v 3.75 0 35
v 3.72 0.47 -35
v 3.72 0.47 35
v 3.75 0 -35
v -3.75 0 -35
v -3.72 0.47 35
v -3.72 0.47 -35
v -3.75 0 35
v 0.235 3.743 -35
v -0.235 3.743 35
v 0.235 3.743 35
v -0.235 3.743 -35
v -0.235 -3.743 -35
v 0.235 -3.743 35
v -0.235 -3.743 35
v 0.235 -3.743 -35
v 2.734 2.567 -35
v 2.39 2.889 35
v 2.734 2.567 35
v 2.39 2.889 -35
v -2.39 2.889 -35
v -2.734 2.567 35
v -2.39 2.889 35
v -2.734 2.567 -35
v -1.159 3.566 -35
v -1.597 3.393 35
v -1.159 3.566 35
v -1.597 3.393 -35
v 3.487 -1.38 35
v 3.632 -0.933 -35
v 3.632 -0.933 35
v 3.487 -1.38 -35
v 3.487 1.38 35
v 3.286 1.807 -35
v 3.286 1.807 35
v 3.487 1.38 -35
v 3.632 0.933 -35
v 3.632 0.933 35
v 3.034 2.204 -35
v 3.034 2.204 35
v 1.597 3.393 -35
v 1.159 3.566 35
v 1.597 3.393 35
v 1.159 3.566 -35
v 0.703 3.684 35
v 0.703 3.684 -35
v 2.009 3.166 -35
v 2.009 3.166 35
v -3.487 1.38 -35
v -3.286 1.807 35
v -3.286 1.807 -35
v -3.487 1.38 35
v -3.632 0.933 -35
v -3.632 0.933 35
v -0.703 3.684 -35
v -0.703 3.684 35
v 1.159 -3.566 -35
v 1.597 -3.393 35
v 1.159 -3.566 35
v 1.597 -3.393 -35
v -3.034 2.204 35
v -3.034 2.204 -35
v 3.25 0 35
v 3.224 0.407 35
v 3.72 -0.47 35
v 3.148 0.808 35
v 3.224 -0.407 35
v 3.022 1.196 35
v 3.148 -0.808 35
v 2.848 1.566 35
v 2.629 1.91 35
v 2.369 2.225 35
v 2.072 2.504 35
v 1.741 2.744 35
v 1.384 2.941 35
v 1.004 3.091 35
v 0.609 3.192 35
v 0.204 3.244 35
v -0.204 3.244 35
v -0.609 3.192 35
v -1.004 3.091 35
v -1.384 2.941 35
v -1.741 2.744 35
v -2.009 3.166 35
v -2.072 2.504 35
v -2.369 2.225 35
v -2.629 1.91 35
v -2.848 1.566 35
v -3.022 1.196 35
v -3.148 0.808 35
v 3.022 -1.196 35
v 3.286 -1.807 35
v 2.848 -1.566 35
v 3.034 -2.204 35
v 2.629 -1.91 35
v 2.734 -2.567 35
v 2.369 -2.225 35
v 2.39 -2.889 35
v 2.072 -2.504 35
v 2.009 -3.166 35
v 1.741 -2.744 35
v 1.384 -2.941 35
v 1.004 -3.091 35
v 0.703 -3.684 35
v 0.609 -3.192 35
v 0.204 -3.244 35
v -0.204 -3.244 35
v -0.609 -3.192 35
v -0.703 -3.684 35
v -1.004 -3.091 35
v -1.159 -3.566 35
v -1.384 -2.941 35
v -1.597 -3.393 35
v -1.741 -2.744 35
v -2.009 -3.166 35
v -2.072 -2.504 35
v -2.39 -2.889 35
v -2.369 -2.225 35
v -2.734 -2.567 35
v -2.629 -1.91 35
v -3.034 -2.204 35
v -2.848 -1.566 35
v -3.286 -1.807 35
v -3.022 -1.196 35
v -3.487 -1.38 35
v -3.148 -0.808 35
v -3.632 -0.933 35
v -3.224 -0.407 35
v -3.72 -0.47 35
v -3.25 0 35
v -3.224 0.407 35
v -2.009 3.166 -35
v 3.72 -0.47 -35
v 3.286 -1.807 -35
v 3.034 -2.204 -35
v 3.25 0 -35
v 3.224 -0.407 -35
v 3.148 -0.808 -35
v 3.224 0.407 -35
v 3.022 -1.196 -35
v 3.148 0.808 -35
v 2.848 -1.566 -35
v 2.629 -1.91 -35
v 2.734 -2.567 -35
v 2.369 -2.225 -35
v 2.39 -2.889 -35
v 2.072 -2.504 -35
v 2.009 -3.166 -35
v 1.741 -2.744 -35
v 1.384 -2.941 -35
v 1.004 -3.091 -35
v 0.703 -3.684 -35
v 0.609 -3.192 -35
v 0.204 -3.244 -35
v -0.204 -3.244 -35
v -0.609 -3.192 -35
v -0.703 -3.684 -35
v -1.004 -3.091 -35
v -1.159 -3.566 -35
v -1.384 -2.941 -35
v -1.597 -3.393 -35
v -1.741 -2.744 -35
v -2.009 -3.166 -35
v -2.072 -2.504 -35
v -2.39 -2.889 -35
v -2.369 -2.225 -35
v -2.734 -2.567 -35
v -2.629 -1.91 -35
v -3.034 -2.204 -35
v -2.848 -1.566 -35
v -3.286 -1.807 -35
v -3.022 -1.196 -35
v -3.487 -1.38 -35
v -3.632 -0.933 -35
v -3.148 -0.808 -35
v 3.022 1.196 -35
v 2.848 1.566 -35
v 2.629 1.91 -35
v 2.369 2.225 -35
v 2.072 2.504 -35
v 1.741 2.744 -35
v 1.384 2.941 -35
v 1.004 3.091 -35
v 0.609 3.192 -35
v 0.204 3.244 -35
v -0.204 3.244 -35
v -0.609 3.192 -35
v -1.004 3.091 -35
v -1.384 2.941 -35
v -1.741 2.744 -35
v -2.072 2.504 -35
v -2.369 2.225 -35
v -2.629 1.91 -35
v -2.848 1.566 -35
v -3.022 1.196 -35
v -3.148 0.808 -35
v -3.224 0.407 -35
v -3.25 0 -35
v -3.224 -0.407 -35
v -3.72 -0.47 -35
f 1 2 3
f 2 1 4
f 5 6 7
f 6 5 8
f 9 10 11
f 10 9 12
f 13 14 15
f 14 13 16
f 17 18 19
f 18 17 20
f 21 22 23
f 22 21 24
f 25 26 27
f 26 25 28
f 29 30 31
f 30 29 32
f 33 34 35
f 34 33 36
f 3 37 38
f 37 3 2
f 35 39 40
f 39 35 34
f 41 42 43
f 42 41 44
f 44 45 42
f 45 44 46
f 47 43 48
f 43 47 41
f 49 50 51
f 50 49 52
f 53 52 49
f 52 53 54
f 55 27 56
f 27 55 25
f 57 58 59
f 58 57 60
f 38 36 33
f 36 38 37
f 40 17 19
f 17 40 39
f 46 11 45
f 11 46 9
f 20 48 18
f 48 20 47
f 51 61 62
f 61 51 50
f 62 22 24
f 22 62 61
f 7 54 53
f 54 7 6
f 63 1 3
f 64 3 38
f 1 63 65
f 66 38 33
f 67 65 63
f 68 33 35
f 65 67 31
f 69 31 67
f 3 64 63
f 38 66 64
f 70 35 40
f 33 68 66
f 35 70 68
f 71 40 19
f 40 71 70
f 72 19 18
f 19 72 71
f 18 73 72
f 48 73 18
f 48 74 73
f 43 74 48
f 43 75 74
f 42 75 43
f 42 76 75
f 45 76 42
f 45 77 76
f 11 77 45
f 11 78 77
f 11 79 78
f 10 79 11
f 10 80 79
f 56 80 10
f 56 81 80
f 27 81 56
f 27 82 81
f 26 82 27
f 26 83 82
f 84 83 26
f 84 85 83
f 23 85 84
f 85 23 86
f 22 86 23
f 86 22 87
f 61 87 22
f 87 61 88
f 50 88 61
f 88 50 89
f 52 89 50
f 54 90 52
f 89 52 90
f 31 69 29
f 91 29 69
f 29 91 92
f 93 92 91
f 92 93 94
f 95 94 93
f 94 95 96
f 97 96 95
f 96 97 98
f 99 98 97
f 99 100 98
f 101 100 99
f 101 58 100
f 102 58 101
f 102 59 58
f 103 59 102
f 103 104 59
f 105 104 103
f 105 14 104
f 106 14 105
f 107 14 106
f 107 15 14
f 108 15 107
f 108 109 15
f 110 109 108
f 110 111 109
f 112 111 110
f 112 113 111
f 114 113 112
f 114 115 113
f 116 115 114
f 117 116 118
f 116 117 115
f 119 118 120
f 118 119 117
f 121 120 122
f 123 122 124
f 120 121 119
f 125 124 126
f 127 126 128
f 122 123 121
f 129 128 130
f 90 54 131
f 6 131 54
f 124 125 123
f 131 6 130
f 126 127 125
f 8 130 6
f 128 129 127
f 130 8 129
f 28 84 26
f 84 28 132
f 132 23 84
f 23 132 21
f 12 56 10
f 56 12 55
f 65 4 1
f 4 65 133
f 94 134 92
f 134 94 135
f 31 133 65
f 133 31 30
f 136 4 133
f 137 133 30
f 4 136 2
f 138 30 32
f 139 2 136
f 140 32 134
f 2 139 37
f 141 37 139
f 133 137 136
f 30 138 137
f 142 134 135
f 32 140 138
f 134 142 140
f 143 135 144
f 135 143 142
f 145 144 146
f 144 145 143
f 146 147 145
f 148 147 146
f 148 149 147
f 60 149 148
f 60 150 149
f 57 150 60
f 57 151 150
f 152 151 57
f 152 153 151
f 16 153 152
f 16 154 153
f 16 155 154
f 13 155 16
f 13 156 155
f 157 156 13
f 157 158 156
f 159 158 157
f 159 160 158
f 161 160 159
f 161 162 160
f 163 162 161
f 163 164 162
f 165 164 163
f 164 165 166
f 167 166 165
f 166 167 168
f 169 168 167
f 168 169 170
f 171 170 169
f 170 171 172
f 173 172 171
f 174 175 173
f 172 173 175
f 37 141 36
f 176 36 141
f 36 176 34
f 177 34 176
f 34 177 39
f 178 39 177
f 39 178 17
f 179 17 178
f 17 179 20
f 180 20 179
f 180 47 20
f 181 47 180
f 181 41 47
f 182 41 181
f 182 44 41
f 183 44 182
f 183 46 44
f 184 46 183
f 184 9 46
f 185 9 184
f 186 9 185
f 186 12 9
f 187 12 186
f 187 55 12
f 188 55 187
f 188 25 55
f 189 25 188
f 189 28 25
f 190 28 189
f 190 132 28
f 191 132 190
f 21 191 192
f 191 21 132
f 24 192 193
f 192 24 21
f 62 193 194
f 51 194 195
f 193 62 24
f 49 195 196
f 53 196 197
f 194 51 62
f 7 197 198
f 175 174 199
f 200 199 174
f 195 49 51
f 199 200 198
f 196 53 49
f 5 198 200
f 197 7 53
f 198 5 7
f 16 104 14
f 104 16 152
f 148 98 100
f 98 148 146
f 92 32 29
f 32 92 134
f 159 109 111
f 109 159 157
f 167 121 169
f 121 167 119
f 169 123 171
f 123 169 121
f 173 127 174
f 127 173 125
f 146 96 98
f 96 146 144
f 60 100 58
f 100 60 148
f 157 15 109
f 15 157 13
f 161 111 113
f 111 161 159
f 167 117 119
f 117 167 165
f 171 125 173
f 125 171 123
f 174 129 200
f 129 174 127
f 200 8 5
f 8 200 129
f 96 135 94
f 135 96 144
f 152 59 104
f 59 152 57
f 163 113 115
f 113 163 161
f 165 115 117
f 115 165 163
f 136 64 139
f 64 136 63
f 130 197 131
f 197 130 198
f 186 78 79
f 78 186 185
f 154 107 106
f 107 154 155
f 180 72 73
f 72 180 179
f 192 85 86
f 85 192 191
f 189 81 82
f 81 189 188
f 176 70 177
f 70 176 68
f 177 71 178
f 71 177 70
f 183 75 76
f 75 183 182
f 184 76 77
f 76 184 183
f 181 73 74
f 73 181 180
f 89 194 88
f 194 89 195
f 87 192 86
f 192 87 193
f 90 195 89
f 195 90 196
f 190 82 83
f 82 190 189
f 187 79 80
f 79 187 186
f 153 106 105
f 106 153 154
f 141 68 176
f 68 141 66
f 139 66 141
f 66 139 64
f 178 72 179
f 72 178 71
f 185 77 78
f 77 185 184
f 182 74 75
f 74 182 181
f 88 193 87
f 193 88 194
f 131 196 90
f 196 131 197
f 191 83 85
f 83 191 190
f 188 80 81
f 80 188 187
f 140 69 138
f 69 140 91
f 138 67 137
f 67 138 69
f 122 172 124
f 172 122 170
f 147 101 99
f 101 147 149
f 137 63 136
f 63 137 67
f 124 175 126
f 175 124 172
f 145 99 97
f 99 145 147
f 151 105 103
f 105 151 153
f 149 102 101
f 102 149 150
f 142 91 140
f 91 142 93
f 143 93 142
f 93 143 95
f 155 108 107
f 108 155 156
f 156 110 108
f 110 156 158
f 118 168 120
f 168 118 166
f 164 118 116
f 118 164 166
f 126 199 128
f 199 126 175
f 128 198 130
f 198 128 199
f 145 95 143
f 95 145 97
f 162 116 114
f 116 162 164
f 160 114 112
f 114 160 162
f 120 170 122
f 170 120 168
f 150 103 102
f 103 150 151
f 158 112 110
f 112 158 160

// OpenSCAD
$fn = 50;


difference() {
	union() {
		translate(v = [0, 0, -35.0000000000]) {
			cylinder(h = 70, r = 3.7500000000);
		}
	}
	union() {
		translate(v = [0, 0, -100.0000000000]) {
			cylinder(h = 200, r = 3.2500000000);
		}
	}
}
